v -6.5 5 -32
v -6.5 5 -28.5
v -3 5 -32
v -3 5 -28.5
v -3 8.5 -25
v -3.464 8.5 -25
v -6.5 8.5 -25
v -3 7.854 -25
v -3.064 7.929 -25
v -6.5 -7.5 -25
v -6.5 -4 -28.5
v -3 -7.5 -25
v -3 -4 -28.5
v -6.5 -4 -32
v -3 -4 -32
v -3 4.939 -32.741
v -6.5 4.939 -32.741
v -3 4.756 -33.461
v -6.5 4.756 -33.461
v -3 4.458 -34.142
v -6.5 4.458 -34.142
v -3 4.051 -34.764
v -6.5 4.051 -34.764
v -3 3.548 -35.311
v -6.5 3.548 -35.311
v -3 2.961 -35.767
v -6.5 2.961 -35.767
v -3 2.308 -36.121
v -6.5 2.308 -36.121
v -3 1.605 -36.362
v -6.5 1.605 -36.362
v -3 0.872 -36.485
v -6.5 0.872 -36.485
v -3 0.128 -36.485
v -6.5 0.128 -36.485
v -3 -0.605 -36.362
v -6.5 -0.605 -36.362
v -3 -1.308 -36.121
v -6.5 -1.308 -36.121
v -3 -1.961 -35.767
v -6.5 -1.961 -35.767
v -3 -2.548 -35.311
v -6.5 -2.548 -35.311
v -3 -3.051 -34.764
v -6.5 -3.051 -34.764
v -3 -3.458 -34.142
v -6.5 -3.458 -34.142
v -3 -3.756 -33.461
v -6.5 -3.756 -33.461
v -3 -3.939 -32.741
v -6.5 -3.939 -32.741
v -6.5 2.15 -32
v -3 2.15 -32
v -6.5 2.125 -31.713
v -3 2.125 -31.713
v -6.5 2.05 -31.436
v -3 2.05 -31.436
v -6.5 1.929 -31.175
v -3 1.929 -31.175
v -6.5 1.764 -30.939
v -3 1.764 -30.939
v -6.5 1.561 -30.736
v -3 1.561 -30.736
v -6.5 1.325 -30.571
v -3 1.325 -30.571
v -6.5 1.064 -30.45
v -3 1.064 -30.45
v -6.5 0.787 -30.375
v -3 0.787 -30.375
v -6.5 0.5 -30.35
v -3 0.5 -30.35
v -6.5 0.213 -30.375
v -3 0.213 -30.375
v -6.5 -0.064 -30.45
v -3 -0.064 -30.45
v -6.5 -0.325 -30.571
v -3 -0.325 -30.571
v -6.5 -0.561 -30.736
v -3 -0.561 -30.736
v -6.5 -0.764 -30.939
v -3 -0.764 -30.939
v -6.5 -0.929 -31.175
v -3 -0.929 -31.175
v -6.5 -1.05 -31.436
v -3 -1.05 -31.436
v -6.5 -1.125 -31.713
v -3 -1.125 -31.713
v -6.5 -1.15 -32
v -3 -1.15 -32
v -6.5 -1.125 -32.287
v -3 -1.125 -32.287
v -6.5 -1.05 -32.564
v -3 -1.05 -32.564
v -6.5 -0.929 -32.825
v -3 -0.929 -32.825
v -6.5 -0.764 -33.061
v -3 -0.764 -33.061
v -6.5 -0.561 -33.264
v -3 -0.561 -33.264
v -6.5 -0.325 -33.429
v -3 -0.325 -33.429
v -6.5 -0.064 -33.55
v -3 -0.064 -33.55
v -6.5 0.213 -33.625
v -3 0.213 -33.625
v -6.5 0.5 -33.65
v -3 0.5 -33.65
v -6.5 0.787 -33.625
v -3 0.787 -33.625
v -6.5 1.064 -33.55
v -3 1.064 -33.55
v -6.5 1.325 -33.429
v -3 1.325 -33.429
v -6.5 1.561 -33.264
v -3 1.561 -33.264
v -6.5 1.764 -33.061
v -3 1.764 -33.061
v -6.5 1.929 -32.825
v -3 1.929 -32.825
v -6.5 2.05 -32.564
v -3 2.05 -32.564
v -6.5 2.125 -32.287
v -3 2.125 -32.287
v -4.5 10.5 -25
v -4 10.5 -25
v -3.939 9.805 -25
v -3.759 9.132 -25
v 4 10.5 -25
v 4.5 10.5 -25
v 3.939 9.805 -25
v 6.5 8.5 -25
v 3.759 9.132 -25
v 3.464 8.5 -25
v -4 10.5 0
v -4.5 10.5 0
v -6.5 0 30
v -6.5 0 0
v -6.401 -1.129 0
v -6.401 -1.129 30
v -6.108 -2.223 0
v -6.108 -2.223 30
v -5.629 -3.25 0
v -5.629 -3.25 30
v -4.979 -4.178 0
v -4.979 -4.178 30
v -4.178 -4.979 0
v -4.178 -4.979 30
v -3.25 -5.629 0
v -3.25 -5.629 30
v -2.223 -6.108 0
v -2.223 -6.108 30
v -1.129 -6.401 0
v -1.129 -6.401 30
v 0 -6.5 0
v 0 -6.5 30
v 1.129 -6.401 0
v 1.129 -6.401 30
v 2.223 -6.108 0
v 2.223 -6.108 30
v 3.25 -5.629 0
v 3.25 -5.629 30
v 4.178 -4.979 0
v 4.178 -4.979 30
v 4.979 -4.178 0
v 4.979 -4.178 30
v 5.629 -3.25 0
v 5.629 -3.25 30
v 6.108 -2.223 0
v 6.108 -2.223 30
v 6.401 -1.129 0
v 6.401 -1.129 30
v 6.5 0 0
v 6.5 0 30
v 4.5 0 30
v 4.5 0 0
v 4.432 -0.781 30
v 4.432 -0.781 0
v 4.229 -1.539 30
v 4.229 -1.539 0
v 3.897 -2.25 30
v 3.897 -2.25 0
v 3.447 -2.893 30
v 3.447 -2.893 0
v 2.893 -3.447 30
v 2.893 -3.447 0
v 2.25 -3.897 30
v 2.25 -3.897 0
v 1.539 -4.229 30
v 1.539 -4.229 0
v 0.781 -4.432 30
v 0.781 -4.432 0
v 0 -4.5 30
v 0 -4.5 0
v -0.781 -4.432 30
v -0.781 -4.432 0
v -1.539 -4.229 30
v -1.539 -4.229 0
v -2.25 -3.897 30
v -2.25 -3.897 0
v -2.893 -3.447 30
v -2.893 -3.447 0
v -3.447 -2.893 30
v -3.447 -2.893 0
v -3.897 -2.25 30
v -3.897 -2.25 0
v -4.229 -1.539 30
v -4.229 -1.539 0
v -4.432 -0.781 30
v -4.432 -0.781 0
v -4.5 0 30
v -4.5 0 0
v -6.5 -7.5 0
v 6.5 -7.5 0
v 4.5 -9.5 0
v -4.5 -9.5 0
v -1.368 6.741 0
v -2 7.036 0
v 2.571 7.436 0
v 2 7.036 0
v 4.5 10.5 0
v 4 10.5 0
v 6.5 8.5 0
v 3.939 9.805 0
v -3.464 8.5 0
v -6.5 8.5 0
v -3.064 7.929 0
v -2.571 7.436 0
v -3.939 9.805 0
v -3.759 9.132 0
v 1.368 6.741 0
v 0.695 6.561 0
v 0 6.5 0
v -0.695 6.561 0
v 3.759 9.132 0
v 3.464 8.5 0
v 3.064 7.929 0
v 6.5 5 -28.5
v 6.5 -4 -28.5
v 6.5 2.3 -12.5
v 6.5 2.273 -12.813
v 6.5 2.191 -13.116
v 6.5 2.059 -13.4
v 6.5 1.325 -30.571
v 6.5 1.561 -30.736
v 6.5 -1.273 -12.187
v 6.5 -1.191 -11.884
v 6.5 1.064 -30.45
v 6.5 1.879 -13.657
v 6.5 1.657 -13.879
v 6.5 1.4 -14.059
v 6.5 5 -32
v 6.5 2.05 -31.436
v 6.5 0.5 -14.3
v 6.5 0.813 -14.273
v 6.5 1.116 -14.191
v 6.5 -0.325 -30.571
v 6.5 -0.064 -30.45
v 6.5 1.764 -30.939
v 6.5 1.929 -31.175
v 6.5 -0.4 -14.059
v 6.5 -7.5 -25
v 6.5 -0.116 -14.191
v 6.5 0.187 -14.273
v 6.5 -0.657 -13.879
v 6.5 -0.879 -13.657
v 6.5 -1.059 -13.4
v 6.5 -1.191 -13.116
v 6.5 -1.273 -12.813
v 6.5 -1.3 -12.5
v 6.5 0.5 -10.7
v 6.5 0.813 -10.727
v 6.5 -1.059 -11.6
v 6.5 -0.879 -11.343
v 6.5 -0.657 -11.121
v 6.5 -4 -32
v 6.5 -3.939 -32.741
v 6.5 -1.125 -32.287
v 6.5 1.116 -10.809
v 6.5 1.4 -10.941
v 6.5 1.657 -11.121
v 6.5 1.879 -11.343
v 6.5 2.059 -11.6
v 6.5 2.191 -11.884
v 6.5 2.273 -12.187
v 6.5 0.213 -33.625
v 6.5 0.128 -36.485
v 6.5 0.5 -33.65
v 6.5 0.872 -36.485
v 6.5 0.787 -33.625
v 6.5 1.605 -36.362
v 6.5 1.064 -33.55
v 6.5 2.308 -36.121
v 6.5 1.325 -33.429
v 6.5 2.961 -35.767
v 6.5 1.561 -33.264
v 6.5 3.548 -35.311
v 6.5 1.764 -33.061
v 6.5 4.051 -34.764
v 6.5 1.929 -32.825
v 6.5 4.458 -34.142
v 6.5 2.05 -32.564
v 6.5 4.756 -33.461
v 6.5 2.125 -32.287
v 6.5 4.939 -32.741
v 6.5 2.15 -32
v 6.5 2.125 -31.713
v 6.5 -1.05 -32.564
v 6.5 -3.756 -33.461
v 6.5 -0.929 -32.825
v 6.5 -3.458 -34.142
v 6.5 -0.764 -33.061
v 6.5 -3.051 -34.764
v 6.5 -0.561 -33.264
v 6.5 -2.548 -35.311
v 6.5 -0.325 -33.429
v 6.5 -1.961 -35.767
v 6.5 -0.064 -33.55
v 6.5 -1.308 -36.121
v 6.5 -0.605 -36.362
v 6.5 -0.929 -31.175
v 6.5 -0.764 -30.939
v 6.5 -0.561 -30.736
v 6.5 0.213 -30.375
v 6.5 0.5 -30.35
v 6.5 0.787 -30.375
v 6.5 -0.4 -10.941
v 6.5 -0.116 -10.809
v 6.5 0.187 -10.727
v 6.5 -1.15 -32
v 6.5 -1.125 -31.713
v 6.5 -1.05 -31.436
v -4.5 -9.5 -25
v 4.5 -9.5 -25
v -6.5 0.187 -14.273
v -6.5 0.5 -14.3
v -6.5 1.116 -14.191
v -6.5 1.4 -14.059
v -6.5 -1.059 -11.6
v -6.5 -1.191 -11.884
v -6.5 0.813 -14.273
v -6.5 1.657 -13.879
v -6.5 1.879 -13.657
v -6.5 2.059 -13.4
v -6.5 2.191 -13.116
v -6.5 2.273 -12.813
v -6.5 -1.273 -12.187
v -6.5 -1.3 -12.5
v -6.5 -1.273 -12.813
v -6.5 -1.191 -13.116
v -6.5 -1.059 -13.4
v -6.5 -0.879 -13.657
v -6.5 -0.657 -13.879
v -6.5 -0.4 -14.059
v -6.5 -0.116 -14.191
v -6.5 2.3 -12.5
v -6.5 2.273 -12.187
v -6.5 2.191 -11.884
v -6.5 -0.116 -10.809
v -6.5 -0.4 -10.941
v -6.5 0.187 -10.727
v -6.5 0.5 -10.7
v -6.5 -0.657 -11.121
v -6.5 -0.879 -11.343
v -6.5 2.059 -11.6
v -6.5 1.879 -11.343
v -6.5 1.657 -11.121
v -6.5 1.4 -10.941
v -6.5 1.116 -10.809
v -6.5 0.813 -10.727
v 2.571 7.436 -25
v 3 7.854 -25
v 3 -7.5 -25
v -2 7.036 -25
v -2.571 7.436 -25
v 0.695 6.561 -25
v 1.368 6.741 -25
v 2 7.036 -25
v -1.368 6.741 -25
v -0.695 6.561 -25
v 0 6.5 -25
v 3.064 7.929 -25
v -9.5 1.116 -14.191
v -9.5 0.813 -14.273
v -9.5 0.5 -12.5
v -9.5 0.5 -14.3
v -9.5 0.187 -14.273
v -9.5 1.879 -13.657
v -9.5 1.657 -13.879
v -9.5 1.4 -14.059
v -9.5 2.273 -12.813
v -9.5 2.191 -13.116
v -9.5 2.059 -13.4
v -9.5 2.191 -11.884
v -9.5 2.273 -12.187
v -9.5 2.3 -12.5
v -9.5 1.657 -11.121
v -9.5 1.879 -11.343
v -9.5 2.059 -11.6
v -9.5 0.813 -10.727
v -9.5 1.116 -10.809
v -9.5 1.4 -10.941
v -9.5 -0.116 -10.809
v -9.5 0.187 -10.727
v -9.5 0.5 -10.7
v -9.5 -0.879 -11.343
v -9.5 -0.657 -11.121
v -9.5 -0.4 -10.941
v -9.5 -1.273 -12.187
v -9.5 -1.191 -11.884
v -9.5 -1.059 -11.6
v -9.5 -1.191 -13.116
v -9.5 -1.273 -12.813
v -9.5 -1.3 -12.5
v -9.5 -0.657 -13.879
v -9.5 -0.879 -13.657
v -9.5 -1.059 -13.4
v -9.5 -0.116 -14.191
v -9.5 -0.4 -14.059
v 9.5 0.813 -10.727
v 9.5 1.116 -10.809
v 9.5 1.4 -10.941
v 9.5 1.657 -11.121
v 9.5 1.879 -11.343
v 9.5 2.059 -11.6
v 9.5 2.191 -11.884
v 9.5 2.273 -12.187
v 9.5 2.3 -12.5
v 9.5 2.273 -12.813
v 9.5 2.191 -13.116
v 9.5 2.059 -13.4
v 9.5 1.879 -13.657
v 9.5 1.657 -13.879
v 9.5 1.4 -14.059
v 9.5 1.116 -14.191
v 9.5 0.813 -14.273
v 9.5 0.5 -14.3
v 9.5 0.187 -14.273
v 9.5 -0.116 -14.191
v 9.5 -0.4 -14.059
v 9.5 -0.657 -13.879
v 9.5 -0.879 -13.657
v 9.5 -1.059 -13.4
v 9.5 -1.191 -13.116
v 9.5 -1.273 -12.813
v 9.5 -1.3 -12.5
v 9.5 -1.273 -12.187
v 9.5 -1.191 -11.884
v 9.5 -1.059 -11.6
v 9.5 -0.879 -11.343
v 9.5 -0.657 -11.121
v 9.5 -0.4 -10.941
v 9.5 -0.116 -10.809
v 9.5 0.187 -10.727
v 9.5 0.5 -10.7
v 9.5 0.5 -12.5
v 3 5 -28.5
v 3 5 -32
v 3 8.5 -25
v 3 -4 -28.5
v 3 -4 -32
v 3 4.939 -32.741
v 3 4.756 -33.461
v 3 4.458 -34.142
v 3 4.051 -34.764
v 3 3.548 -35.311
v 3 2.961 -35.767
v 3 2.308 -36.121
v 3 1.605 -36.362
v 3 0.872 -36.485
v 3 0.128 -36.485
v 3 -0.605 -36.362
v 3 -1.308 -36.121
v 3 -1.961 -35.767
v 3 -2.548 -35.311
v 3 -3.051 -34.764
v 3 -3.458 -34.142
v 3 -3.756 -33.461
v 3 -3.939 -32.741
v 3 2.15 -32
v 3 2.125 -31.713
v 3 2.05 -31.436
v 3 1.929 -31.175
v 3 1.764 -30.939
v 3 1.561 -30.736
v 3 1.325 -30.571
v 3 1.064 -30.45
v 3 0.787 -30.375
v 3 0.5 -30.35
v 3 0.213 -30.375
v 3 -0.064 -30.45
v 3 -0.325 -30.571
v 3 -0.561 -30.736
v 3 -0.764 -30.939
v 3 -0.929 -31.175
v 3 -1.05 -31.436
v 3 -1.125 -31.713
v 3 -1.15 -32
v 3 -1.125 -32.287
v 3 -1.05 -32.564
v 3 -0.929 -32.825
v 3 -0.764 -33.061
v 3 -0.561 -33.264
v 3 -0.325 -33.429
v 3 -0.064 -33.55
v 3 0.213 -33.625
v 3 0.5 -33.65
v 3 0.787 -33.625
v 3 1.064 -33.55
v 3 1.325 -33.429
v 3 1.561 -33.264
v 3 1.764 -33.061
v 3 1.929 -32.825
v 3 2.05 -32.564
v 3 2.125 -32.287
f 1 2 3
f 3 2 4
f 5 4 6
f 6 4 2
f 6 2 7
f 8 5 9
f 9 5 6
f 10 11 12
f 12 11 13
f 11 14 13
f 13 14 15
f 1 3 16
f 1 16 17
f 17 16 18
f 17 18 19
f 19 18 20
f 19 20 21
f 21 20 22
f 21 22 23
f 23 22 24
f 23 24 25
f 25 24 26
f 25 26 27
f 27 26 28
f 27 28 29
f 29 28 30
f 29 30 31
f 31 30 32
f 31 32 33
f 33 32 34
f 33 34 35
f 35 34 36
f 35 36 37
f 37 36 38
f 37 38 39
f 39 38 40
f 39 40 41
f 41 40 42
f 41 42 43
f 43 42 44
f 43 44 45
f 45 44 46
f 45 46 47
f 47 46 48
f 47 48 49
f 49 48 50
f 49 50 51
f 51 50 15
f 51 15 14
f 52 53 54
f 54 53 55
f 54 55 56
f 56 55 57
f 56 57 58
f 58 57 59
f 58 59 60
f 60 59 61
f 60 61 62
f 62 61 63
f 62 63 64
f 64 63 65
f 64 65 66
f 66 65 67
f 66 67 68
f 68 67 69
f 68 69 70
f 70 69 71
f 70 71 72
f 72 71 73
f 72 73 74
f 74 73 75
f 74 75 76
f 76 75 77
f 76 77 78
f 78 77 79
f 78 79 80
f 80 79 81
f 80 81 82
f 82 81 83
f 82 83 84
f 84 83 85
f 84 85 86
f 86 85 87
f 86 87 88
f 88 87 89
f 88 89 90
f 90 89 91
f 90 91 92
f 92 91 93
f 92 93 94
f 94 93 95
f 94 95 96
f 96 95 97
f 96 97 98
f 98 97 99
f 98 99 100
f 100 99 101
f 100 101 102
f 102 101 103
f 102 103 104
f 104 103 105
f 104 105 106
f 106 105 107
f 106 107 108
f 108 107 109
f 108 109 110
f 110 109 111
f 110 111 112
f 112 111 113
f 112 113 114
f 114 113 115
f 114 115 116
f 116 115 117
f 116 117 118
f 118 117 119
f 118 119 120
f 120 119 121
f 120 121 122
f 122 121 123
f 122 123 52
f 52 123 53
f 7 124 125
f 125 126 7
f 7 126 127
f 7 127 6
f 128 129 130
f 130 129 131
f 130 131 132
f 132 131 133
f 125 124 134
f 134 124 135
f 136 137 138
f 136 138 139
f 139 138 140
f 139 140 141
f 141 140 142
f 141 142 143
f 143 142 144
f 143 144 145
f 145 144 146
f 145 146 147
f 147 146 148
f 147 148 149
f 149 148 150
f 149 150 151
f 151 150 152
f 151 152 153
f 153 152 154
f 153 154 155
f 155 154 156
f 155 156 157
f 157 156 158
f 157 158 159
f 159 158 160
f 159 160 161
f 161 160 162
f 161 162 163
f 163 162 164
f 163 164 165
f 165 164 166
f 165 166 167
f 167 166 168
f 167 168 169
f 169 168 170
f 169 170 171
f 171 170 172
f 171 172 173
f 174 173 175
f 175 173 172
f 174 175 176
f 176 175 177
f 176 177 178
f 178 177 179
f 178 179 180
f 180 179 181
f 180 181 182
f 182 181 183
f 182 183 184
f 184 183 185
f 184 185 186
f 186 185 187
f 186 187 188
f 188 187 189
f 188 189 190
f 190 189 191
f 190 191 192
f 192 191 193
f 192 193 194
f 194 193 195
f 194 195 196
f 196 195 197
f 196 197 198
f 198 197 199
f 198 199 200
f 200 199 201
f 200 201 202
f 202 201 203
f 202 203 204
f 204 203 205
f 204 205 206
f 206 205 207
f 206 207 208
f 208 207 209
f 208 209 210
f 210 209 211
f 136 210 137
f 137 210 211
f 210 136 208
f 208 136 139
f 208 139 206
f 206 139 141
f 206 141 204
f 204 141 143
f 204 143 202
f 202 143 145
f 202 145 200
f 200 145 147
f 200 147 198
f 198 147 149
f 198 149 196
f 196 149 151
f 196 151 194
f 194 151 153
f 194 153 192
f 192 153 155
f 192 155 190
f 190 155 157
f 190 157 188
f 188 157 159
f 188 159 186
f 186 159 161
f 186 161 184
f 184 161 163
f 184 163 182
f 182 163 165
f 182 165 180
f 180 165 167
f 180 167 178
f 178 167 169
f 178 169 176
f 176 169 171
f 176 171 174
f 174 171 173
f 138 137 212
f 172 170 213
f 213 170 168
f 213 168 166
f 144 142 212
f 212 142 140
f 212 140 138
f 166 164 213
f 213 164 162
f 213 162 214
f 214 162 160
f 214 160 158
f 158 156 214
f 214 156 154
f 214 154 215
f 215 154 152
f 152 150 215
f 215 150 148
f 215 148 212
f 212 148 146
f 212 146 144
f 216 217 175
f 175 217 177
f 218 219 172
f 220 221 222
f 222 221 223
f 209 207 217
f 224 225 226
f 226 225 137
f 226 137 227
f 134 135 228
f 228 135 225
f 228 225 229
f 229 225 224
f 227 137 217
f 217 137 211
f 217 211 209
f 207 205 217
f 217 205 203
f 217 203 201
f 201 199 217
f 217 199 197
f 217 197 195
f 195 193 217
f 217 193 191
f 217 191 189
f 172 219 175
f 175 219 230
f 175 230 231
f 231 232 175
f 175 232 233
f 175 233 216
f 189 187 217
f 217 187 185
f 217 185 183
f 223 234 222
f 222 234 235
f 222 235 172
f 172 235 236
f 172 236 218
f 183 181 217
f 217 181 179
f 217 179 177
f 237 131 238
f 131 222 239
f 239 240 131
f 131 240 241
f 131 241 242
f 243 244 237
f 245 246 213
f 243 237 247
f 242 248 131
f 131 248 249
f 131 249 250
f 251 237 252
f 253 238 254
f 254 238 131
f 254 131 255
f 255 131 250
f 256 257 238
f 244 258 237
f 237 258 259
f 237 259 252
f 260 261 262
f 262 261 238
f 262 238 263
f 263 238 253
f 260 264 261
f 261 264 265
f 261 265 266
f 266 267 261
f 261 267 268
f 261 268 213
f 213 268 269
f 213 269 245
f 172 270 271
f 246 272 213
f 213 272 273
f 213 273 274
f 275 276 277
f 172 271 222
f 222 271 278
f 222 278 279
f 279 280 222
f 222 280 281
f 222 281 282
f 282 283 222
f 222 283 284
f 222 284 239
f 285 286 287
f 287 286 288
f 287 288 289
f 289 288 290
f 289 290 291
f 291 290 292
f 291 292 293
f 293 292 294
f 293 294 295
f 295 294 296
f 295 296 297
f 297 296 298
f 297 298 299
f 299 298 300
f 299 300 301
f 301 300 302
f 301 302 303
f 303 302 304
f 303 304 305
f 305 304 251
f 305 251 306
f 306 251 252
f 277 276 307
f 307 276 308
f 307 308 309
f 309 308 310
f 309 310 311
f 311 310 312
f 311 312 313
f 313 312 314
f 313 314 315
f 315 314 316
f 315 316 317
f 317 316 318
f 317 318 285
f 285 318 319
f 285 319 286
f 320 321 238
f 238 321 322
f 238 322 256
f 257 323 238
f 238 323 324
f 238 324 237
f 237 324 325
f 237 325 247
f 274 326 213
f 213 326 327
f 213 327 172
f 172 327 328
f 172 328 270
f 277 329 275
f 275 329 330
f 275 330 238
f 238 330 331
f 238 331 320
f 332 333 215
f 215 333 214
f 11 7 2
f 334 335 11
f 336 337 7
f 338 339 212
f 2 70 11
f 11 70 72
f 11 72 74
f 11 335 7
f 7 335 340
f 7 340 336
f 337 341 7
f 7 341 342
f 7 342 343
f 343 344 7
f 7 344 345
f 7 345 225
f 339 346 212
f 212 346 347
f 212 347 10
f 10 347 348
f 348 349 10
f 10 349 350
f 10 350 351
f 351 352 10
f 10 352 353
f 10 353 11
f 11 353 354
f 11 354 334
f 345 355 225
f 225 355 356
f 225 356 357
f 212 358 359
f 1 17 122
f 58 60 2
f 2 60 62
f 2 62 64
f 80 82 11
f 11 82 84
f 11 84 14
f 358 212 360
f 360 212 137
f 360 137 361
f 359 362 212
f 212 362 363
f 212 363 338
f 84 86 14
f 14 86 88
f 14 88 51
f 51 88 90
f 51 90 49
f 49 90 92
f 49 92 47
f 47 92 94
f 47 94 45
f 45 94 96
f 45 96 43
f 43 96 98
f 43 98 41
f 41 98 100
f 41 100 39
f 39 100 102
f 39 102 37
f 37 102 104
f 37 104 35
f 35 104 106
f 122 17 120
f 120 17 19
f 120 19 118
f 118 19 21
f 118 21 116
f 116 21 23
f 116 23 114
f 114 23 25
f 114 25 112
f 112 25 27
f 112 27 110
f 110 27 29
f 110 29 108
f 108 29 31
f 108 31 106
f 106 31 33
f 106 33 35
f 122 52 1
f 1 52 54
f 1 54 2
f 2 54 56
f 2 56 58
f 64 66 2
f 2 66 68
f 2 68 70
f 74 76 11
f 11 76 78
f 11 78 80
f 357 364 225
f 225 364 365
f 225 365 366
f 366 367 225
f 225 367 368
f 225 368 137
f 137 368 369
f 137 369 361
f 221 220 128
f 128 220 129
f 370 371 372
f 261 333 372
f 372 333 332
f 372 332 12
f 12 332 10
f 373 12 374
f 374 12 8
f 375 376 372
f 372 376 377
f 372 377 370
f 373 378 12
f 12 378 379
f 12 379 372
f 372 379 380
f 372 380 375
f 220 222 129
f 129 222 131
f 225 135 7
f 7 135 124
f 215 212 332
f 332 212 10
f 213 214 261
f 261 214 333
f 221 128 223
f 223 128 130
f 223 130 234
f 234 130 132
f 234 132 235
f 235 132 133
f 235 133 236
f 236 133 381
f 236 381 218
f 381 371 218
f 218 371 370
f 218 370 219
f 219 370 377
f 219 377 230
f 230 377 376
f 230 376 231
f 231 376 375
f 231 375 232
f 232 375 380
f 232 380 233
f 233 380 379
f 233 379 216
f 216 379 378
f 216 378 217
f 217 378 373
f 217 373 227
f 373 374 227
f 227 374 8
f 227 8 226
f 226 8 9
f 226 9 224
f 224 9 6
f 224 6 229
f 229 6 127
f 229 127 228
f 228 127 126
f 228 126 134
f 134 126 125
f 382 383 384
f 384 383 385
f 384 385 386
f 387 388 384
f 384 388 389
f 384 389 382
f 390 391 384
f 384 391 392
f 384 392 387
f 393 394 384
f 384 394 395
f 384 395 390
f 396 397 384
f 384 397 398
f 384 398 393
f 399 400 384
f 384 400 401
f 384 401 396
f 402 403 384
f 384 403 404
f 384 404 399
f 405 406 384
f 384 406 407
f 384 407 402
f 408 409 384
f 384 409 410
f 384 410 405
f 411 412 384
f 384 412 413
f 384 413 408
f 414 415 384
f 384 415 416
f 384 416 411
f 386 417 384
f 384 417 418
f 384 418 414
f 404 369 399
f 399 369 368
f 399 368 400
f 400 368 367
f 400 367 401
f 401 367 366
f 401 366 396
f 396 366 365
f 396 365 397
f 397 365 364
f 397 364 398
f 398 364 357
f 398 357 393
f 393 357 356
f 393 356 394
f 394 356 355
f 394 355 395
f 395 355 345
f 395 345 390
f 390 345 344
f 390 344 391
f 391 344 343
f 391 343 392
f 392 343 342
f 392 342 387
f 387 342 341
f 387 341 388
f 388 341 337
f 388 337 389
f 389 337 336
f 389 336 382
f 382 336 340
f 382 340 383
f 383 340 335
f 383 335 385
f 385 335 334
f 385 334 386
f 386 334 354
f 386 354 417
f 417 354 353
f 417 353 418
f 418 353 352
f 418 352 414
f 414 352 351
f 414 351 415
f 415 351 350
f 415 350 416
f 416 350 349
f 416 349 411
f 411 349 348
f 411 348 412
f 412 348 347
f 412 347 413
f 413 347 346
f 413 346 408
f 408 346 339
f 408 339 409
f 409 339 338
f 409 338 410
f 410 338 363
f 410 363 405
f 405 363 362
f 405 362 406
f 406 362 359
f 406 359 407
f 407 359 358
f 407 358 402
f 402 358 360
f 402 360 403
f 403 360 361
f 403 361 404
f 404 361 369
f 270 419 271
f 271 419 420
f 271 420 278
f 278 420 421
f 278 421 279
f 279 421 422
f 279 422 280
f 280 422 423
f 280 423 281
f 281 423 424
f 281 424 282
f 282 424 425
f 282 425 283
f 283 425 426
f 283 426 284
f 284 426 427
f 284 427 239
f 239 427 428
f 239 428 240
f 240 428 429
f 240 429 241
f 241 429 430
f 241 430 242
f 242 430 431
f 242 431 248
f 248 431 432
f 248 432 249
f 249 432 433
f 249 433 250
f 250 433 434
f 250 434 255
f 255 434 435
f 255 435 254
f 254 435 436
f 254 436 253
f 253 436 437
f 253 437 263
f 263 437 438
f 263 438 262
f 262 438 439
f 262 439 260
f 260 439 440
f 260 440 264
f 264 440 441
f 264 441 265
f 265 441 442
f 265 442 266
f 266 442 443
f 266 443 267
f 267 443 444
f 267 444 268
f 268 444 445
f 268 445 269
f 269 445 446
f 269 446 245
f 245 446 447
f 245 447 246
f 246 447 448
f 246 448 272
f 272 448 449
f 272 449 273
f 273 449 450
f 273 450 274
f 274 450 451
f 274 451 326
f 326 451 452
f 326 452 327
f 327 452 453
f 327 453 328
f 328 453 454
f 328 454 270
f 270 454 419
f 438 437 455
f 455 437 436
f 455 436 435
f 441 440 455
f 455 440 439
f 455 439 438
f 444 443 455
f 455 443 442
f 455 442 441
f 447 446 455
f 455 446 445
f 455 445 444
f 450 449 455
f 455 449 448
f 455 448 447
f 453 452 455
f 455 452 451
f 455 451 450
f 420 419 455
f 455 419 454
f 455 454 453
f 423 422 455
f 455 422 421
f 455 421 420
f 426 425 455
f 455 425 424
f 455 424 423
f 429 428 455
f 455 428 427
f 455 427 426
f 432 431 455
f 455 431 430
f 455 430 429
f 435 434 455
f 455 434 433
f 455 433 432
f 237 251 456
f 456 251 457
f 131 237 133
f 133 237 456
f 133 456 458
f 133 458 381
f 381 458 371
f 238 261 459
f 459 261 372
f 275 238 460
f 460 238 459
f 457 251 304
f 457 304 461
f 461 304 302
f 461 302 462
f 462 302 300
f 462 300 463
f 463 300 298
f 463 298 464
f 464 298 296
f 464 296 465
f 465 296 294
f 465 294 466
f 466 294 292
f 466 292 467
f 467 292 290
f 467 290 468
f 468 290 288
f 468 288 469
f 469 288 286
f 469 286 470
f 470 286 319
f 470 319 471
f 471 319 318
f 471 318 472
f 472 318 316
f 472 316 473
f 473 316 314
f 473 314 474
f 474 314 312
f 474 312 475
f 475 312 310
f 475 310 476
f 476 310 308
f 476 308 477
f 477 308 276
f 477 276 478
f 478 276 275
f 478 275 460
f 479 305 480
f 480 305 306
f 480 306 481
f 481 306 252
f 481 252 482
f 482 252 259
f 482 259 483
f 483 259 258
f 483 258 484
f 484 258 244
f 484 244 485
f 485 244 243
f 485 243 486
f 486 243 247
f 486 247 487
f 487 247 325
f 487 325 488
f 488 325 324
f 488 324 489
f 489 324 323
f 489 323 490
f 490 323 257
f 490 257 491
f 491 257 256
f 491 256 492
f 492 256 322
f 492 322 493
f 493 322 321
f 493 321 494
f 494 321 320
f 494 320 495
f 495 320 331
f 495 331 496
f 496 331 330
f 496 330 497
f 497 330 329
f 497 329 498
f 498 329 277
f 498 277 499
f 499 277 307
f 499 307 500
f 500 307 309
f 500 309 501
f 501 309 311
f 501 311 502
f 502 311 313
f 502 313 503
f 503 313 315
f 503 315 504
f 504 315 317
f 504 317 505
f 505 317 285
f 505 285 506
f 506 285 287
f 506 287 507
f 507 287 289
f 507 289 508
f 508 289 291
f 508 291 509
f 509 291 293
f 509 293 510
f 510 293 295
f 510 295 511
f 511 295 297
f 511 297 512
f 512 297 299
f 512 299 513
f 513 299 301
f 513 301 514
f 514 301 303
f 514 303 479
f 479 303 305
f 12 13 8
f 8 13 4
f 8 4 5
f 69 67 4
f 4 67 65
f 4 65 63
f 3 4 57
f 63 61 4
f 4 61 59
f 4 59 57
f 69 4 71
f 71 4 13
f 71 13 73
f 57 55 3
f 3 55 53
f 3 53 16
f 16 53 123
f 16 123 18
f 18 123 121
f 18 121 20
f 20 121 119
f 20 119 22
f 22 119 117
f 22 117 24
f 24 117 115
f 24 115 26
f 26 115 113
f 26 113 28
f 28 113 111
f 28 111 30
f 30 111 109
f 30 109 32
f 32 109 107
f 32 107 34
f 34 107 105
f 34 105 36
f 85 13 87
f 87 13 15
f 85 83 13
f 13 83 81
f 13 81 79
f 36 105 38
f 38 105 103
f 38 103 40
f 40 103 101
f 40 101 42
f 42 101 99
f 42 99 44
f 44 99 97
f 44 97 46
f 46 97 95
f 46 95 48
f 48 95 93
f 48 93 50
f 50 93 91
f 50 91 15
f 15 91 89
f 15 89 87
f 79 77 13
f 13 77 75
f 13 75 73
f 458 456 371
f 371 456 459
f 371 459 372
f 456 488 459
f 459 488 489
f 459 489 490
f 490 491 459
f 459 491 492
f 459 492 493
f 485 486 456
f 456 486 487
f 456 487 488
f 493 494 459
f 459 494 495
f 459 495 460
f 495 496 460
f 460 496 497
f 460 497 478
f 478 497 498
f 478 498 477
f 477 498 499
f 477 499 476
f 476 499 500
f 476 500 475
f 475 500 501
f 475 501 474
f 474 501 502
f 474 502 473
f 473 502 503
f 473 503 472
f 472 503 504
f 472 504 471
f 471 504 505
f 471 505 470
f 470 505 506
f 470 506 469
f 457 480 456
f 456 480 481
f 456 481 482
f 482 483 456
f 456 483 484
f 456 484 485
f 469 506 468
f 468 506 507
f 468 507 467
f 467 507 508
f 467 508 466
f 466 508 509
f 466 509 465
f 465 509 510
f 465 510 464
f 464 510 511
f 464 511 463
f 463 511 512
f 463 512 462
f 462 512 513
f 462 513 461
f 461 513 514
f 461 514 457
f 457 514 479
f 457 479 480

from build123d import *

# Parameters (mm, degrees)
BOSS_EXTRUDE1_DEPTH     = 30
SKETCH2_W               = 13
SKETCH2_H               = 20
BOSS_EXTRUDE2_DEPTH     = 25
CHAMFER1_SIZE           = 2
SKETCH3_R               = 4
CUT_EXTRUDE1_DEPTH      = 40
SKETCH4_R               = 1.8
BOSS_EXTRUDE3_DEPTH     = 9.5
BOSS_EXTRUDE4_REACH     = 37.584
SKETCH5_R               = 1.65
CUT_EXTRUDE2_DEPTH      = 41.40730132
CUT_EXTRUDE2_DEPTH_BACK = 41.40730132
SKETCH6_W               = 6
SKETCH6_H               = 11.5


with BuildPart() as part:
    # Sketch1 → Boss-Extrude1 (new body)
    with BuildSketch(Plane.XY):
        with BuildLine():
            Line((6.5, 0), (4.5, 0))
            ThreePointArc((4.5, 0), (0, -4.5), (-4.5, 0))
            Line((-4.5, 0), (-6.5, 0))
            ThreePointArc((-6.5, 0), (0, -6.5), (6.5, 0))
        make_face()
    extrude(amount=BOSS_EXTRUDE1_DEPTH)

    # Sketch2 → Boss-Extrude2 (add)
    with BuildSketch(Plane(origin=(0, 0, 0), x_dir=(-1, 0, 0), z_dir=(0, 0, -1))):
        with Locations((0, 0.5)):
            Rectangle(SKETCH2_W, SKETCH2_H)
    extrude(amount=BOSS_EXTRUDE2_DEPTH)

    # Chamfer1
    chamfer1_edges = [part.edges().sort_by_distance(p)[0] for p in [
        (6.5, 10.5, -12.5),
        (6.5, -9.5, -12.5),
        (-6.5, -9.5, -12.5),
        (-6.5, 10.5, -12.5),
    ]]
    chamfer(chamfer1_edges, length=CHAMFER1_SIZE)

    # Sketch3 → Cut-Extrude1 (cut)
    with BuildSketch(Plane(origin=(0, 0, -25), x_dir=(-1, 0, 0), z_dir=(0, 0, -1))):
        with Locations((0, 10.5)):
            Circle(SKETCH3_R)
    extrude(amount=-CUT_EXTRUDE1_DEPTH, mode=Mode.SUBTRACT)

    # Sketch4 → Boss-Extrude3 (add, symmetric)
    with BuildSketch(Plane(origin=(0, 0, 0), x_dir=(0, 0, -1), z_dir=(1, 0, 0))):
        with Locations(Location((12.5, 0.5, 0), (0, 0, 90))):
            Circle(SKETCH4_R)
    extrude(amount=BOSS_EXTRUDE3_DEPTH, both=True)

    # Boss-Extrude4: up to this face of the body (flat: up to its plane)
    boss_extrude4_end = Plane(part.part.faces().sort_by_distance((-6.5, -3.75, -0.296816442))[0])
    # Sketch5 → Boss-Extrude4 (add, up to the picked face)
    with BuildSketch(Plane(origin=(6.5, 0, 0), x_dir=(0, 0, -1), z_dir=(1, 0, 0)), mode=Mode.PRIVATE) as boss_extrude4_sk1:
        with BuildLine():
            Line((32, 5), (28.5, 5))
            Line((28.5, 5), (25, 8.5))
            Line((25, 8.5), (25, -7.5))
            Line((25, -7.5), (28.5, -4))
            Line((28.5, -4), (32, -4))
            ThreePointArc((32, -4), (36.5, 0.5), (32, 5))
        make_face()
        with Locations(Location((32, 0.5, 0), (0, 0, 90))):
            Circle(SKETCH5_R, mode=Mode.SUBTRACT)
    boss_extrude4_tool1 = split(extrude(boss_extrude4_sk1.sketch, amount=-BOSS_EXTRUDE4_REACH, mode=Mode.PRIVATE), bisect_by=boss_extrude4_end, keep=Keep.BOTH, mode=Mode.PRIVATE)
    add(boss_extrude4_tool1.solids().sort_by(Axis((6.5, 0.5, -29.652842), (-1, 0, 0)))[0])

    # Sketch6 → Cut-Extrude2 (cut, two sides: drawn at the far end of the back side and taken through both)
    with BuildSketch(Plane(origin=(0, 5, 0), x_dir=(1, 0, 0), z_dir=(0, 1, 0)).offset(-CUT_EXTRUDE2_DEPTH_BACK)):
        with Locations((0, 30.75)):
            Rectangle(SKETCH6_W, SKETCH6_H)
    extrude(amount=CUT_EXTRUDE2_DEPTH + CUT_EXTRUDE2_DEPTH_BACK, mode=Mode.SUBTRACT)


solid = part.part
